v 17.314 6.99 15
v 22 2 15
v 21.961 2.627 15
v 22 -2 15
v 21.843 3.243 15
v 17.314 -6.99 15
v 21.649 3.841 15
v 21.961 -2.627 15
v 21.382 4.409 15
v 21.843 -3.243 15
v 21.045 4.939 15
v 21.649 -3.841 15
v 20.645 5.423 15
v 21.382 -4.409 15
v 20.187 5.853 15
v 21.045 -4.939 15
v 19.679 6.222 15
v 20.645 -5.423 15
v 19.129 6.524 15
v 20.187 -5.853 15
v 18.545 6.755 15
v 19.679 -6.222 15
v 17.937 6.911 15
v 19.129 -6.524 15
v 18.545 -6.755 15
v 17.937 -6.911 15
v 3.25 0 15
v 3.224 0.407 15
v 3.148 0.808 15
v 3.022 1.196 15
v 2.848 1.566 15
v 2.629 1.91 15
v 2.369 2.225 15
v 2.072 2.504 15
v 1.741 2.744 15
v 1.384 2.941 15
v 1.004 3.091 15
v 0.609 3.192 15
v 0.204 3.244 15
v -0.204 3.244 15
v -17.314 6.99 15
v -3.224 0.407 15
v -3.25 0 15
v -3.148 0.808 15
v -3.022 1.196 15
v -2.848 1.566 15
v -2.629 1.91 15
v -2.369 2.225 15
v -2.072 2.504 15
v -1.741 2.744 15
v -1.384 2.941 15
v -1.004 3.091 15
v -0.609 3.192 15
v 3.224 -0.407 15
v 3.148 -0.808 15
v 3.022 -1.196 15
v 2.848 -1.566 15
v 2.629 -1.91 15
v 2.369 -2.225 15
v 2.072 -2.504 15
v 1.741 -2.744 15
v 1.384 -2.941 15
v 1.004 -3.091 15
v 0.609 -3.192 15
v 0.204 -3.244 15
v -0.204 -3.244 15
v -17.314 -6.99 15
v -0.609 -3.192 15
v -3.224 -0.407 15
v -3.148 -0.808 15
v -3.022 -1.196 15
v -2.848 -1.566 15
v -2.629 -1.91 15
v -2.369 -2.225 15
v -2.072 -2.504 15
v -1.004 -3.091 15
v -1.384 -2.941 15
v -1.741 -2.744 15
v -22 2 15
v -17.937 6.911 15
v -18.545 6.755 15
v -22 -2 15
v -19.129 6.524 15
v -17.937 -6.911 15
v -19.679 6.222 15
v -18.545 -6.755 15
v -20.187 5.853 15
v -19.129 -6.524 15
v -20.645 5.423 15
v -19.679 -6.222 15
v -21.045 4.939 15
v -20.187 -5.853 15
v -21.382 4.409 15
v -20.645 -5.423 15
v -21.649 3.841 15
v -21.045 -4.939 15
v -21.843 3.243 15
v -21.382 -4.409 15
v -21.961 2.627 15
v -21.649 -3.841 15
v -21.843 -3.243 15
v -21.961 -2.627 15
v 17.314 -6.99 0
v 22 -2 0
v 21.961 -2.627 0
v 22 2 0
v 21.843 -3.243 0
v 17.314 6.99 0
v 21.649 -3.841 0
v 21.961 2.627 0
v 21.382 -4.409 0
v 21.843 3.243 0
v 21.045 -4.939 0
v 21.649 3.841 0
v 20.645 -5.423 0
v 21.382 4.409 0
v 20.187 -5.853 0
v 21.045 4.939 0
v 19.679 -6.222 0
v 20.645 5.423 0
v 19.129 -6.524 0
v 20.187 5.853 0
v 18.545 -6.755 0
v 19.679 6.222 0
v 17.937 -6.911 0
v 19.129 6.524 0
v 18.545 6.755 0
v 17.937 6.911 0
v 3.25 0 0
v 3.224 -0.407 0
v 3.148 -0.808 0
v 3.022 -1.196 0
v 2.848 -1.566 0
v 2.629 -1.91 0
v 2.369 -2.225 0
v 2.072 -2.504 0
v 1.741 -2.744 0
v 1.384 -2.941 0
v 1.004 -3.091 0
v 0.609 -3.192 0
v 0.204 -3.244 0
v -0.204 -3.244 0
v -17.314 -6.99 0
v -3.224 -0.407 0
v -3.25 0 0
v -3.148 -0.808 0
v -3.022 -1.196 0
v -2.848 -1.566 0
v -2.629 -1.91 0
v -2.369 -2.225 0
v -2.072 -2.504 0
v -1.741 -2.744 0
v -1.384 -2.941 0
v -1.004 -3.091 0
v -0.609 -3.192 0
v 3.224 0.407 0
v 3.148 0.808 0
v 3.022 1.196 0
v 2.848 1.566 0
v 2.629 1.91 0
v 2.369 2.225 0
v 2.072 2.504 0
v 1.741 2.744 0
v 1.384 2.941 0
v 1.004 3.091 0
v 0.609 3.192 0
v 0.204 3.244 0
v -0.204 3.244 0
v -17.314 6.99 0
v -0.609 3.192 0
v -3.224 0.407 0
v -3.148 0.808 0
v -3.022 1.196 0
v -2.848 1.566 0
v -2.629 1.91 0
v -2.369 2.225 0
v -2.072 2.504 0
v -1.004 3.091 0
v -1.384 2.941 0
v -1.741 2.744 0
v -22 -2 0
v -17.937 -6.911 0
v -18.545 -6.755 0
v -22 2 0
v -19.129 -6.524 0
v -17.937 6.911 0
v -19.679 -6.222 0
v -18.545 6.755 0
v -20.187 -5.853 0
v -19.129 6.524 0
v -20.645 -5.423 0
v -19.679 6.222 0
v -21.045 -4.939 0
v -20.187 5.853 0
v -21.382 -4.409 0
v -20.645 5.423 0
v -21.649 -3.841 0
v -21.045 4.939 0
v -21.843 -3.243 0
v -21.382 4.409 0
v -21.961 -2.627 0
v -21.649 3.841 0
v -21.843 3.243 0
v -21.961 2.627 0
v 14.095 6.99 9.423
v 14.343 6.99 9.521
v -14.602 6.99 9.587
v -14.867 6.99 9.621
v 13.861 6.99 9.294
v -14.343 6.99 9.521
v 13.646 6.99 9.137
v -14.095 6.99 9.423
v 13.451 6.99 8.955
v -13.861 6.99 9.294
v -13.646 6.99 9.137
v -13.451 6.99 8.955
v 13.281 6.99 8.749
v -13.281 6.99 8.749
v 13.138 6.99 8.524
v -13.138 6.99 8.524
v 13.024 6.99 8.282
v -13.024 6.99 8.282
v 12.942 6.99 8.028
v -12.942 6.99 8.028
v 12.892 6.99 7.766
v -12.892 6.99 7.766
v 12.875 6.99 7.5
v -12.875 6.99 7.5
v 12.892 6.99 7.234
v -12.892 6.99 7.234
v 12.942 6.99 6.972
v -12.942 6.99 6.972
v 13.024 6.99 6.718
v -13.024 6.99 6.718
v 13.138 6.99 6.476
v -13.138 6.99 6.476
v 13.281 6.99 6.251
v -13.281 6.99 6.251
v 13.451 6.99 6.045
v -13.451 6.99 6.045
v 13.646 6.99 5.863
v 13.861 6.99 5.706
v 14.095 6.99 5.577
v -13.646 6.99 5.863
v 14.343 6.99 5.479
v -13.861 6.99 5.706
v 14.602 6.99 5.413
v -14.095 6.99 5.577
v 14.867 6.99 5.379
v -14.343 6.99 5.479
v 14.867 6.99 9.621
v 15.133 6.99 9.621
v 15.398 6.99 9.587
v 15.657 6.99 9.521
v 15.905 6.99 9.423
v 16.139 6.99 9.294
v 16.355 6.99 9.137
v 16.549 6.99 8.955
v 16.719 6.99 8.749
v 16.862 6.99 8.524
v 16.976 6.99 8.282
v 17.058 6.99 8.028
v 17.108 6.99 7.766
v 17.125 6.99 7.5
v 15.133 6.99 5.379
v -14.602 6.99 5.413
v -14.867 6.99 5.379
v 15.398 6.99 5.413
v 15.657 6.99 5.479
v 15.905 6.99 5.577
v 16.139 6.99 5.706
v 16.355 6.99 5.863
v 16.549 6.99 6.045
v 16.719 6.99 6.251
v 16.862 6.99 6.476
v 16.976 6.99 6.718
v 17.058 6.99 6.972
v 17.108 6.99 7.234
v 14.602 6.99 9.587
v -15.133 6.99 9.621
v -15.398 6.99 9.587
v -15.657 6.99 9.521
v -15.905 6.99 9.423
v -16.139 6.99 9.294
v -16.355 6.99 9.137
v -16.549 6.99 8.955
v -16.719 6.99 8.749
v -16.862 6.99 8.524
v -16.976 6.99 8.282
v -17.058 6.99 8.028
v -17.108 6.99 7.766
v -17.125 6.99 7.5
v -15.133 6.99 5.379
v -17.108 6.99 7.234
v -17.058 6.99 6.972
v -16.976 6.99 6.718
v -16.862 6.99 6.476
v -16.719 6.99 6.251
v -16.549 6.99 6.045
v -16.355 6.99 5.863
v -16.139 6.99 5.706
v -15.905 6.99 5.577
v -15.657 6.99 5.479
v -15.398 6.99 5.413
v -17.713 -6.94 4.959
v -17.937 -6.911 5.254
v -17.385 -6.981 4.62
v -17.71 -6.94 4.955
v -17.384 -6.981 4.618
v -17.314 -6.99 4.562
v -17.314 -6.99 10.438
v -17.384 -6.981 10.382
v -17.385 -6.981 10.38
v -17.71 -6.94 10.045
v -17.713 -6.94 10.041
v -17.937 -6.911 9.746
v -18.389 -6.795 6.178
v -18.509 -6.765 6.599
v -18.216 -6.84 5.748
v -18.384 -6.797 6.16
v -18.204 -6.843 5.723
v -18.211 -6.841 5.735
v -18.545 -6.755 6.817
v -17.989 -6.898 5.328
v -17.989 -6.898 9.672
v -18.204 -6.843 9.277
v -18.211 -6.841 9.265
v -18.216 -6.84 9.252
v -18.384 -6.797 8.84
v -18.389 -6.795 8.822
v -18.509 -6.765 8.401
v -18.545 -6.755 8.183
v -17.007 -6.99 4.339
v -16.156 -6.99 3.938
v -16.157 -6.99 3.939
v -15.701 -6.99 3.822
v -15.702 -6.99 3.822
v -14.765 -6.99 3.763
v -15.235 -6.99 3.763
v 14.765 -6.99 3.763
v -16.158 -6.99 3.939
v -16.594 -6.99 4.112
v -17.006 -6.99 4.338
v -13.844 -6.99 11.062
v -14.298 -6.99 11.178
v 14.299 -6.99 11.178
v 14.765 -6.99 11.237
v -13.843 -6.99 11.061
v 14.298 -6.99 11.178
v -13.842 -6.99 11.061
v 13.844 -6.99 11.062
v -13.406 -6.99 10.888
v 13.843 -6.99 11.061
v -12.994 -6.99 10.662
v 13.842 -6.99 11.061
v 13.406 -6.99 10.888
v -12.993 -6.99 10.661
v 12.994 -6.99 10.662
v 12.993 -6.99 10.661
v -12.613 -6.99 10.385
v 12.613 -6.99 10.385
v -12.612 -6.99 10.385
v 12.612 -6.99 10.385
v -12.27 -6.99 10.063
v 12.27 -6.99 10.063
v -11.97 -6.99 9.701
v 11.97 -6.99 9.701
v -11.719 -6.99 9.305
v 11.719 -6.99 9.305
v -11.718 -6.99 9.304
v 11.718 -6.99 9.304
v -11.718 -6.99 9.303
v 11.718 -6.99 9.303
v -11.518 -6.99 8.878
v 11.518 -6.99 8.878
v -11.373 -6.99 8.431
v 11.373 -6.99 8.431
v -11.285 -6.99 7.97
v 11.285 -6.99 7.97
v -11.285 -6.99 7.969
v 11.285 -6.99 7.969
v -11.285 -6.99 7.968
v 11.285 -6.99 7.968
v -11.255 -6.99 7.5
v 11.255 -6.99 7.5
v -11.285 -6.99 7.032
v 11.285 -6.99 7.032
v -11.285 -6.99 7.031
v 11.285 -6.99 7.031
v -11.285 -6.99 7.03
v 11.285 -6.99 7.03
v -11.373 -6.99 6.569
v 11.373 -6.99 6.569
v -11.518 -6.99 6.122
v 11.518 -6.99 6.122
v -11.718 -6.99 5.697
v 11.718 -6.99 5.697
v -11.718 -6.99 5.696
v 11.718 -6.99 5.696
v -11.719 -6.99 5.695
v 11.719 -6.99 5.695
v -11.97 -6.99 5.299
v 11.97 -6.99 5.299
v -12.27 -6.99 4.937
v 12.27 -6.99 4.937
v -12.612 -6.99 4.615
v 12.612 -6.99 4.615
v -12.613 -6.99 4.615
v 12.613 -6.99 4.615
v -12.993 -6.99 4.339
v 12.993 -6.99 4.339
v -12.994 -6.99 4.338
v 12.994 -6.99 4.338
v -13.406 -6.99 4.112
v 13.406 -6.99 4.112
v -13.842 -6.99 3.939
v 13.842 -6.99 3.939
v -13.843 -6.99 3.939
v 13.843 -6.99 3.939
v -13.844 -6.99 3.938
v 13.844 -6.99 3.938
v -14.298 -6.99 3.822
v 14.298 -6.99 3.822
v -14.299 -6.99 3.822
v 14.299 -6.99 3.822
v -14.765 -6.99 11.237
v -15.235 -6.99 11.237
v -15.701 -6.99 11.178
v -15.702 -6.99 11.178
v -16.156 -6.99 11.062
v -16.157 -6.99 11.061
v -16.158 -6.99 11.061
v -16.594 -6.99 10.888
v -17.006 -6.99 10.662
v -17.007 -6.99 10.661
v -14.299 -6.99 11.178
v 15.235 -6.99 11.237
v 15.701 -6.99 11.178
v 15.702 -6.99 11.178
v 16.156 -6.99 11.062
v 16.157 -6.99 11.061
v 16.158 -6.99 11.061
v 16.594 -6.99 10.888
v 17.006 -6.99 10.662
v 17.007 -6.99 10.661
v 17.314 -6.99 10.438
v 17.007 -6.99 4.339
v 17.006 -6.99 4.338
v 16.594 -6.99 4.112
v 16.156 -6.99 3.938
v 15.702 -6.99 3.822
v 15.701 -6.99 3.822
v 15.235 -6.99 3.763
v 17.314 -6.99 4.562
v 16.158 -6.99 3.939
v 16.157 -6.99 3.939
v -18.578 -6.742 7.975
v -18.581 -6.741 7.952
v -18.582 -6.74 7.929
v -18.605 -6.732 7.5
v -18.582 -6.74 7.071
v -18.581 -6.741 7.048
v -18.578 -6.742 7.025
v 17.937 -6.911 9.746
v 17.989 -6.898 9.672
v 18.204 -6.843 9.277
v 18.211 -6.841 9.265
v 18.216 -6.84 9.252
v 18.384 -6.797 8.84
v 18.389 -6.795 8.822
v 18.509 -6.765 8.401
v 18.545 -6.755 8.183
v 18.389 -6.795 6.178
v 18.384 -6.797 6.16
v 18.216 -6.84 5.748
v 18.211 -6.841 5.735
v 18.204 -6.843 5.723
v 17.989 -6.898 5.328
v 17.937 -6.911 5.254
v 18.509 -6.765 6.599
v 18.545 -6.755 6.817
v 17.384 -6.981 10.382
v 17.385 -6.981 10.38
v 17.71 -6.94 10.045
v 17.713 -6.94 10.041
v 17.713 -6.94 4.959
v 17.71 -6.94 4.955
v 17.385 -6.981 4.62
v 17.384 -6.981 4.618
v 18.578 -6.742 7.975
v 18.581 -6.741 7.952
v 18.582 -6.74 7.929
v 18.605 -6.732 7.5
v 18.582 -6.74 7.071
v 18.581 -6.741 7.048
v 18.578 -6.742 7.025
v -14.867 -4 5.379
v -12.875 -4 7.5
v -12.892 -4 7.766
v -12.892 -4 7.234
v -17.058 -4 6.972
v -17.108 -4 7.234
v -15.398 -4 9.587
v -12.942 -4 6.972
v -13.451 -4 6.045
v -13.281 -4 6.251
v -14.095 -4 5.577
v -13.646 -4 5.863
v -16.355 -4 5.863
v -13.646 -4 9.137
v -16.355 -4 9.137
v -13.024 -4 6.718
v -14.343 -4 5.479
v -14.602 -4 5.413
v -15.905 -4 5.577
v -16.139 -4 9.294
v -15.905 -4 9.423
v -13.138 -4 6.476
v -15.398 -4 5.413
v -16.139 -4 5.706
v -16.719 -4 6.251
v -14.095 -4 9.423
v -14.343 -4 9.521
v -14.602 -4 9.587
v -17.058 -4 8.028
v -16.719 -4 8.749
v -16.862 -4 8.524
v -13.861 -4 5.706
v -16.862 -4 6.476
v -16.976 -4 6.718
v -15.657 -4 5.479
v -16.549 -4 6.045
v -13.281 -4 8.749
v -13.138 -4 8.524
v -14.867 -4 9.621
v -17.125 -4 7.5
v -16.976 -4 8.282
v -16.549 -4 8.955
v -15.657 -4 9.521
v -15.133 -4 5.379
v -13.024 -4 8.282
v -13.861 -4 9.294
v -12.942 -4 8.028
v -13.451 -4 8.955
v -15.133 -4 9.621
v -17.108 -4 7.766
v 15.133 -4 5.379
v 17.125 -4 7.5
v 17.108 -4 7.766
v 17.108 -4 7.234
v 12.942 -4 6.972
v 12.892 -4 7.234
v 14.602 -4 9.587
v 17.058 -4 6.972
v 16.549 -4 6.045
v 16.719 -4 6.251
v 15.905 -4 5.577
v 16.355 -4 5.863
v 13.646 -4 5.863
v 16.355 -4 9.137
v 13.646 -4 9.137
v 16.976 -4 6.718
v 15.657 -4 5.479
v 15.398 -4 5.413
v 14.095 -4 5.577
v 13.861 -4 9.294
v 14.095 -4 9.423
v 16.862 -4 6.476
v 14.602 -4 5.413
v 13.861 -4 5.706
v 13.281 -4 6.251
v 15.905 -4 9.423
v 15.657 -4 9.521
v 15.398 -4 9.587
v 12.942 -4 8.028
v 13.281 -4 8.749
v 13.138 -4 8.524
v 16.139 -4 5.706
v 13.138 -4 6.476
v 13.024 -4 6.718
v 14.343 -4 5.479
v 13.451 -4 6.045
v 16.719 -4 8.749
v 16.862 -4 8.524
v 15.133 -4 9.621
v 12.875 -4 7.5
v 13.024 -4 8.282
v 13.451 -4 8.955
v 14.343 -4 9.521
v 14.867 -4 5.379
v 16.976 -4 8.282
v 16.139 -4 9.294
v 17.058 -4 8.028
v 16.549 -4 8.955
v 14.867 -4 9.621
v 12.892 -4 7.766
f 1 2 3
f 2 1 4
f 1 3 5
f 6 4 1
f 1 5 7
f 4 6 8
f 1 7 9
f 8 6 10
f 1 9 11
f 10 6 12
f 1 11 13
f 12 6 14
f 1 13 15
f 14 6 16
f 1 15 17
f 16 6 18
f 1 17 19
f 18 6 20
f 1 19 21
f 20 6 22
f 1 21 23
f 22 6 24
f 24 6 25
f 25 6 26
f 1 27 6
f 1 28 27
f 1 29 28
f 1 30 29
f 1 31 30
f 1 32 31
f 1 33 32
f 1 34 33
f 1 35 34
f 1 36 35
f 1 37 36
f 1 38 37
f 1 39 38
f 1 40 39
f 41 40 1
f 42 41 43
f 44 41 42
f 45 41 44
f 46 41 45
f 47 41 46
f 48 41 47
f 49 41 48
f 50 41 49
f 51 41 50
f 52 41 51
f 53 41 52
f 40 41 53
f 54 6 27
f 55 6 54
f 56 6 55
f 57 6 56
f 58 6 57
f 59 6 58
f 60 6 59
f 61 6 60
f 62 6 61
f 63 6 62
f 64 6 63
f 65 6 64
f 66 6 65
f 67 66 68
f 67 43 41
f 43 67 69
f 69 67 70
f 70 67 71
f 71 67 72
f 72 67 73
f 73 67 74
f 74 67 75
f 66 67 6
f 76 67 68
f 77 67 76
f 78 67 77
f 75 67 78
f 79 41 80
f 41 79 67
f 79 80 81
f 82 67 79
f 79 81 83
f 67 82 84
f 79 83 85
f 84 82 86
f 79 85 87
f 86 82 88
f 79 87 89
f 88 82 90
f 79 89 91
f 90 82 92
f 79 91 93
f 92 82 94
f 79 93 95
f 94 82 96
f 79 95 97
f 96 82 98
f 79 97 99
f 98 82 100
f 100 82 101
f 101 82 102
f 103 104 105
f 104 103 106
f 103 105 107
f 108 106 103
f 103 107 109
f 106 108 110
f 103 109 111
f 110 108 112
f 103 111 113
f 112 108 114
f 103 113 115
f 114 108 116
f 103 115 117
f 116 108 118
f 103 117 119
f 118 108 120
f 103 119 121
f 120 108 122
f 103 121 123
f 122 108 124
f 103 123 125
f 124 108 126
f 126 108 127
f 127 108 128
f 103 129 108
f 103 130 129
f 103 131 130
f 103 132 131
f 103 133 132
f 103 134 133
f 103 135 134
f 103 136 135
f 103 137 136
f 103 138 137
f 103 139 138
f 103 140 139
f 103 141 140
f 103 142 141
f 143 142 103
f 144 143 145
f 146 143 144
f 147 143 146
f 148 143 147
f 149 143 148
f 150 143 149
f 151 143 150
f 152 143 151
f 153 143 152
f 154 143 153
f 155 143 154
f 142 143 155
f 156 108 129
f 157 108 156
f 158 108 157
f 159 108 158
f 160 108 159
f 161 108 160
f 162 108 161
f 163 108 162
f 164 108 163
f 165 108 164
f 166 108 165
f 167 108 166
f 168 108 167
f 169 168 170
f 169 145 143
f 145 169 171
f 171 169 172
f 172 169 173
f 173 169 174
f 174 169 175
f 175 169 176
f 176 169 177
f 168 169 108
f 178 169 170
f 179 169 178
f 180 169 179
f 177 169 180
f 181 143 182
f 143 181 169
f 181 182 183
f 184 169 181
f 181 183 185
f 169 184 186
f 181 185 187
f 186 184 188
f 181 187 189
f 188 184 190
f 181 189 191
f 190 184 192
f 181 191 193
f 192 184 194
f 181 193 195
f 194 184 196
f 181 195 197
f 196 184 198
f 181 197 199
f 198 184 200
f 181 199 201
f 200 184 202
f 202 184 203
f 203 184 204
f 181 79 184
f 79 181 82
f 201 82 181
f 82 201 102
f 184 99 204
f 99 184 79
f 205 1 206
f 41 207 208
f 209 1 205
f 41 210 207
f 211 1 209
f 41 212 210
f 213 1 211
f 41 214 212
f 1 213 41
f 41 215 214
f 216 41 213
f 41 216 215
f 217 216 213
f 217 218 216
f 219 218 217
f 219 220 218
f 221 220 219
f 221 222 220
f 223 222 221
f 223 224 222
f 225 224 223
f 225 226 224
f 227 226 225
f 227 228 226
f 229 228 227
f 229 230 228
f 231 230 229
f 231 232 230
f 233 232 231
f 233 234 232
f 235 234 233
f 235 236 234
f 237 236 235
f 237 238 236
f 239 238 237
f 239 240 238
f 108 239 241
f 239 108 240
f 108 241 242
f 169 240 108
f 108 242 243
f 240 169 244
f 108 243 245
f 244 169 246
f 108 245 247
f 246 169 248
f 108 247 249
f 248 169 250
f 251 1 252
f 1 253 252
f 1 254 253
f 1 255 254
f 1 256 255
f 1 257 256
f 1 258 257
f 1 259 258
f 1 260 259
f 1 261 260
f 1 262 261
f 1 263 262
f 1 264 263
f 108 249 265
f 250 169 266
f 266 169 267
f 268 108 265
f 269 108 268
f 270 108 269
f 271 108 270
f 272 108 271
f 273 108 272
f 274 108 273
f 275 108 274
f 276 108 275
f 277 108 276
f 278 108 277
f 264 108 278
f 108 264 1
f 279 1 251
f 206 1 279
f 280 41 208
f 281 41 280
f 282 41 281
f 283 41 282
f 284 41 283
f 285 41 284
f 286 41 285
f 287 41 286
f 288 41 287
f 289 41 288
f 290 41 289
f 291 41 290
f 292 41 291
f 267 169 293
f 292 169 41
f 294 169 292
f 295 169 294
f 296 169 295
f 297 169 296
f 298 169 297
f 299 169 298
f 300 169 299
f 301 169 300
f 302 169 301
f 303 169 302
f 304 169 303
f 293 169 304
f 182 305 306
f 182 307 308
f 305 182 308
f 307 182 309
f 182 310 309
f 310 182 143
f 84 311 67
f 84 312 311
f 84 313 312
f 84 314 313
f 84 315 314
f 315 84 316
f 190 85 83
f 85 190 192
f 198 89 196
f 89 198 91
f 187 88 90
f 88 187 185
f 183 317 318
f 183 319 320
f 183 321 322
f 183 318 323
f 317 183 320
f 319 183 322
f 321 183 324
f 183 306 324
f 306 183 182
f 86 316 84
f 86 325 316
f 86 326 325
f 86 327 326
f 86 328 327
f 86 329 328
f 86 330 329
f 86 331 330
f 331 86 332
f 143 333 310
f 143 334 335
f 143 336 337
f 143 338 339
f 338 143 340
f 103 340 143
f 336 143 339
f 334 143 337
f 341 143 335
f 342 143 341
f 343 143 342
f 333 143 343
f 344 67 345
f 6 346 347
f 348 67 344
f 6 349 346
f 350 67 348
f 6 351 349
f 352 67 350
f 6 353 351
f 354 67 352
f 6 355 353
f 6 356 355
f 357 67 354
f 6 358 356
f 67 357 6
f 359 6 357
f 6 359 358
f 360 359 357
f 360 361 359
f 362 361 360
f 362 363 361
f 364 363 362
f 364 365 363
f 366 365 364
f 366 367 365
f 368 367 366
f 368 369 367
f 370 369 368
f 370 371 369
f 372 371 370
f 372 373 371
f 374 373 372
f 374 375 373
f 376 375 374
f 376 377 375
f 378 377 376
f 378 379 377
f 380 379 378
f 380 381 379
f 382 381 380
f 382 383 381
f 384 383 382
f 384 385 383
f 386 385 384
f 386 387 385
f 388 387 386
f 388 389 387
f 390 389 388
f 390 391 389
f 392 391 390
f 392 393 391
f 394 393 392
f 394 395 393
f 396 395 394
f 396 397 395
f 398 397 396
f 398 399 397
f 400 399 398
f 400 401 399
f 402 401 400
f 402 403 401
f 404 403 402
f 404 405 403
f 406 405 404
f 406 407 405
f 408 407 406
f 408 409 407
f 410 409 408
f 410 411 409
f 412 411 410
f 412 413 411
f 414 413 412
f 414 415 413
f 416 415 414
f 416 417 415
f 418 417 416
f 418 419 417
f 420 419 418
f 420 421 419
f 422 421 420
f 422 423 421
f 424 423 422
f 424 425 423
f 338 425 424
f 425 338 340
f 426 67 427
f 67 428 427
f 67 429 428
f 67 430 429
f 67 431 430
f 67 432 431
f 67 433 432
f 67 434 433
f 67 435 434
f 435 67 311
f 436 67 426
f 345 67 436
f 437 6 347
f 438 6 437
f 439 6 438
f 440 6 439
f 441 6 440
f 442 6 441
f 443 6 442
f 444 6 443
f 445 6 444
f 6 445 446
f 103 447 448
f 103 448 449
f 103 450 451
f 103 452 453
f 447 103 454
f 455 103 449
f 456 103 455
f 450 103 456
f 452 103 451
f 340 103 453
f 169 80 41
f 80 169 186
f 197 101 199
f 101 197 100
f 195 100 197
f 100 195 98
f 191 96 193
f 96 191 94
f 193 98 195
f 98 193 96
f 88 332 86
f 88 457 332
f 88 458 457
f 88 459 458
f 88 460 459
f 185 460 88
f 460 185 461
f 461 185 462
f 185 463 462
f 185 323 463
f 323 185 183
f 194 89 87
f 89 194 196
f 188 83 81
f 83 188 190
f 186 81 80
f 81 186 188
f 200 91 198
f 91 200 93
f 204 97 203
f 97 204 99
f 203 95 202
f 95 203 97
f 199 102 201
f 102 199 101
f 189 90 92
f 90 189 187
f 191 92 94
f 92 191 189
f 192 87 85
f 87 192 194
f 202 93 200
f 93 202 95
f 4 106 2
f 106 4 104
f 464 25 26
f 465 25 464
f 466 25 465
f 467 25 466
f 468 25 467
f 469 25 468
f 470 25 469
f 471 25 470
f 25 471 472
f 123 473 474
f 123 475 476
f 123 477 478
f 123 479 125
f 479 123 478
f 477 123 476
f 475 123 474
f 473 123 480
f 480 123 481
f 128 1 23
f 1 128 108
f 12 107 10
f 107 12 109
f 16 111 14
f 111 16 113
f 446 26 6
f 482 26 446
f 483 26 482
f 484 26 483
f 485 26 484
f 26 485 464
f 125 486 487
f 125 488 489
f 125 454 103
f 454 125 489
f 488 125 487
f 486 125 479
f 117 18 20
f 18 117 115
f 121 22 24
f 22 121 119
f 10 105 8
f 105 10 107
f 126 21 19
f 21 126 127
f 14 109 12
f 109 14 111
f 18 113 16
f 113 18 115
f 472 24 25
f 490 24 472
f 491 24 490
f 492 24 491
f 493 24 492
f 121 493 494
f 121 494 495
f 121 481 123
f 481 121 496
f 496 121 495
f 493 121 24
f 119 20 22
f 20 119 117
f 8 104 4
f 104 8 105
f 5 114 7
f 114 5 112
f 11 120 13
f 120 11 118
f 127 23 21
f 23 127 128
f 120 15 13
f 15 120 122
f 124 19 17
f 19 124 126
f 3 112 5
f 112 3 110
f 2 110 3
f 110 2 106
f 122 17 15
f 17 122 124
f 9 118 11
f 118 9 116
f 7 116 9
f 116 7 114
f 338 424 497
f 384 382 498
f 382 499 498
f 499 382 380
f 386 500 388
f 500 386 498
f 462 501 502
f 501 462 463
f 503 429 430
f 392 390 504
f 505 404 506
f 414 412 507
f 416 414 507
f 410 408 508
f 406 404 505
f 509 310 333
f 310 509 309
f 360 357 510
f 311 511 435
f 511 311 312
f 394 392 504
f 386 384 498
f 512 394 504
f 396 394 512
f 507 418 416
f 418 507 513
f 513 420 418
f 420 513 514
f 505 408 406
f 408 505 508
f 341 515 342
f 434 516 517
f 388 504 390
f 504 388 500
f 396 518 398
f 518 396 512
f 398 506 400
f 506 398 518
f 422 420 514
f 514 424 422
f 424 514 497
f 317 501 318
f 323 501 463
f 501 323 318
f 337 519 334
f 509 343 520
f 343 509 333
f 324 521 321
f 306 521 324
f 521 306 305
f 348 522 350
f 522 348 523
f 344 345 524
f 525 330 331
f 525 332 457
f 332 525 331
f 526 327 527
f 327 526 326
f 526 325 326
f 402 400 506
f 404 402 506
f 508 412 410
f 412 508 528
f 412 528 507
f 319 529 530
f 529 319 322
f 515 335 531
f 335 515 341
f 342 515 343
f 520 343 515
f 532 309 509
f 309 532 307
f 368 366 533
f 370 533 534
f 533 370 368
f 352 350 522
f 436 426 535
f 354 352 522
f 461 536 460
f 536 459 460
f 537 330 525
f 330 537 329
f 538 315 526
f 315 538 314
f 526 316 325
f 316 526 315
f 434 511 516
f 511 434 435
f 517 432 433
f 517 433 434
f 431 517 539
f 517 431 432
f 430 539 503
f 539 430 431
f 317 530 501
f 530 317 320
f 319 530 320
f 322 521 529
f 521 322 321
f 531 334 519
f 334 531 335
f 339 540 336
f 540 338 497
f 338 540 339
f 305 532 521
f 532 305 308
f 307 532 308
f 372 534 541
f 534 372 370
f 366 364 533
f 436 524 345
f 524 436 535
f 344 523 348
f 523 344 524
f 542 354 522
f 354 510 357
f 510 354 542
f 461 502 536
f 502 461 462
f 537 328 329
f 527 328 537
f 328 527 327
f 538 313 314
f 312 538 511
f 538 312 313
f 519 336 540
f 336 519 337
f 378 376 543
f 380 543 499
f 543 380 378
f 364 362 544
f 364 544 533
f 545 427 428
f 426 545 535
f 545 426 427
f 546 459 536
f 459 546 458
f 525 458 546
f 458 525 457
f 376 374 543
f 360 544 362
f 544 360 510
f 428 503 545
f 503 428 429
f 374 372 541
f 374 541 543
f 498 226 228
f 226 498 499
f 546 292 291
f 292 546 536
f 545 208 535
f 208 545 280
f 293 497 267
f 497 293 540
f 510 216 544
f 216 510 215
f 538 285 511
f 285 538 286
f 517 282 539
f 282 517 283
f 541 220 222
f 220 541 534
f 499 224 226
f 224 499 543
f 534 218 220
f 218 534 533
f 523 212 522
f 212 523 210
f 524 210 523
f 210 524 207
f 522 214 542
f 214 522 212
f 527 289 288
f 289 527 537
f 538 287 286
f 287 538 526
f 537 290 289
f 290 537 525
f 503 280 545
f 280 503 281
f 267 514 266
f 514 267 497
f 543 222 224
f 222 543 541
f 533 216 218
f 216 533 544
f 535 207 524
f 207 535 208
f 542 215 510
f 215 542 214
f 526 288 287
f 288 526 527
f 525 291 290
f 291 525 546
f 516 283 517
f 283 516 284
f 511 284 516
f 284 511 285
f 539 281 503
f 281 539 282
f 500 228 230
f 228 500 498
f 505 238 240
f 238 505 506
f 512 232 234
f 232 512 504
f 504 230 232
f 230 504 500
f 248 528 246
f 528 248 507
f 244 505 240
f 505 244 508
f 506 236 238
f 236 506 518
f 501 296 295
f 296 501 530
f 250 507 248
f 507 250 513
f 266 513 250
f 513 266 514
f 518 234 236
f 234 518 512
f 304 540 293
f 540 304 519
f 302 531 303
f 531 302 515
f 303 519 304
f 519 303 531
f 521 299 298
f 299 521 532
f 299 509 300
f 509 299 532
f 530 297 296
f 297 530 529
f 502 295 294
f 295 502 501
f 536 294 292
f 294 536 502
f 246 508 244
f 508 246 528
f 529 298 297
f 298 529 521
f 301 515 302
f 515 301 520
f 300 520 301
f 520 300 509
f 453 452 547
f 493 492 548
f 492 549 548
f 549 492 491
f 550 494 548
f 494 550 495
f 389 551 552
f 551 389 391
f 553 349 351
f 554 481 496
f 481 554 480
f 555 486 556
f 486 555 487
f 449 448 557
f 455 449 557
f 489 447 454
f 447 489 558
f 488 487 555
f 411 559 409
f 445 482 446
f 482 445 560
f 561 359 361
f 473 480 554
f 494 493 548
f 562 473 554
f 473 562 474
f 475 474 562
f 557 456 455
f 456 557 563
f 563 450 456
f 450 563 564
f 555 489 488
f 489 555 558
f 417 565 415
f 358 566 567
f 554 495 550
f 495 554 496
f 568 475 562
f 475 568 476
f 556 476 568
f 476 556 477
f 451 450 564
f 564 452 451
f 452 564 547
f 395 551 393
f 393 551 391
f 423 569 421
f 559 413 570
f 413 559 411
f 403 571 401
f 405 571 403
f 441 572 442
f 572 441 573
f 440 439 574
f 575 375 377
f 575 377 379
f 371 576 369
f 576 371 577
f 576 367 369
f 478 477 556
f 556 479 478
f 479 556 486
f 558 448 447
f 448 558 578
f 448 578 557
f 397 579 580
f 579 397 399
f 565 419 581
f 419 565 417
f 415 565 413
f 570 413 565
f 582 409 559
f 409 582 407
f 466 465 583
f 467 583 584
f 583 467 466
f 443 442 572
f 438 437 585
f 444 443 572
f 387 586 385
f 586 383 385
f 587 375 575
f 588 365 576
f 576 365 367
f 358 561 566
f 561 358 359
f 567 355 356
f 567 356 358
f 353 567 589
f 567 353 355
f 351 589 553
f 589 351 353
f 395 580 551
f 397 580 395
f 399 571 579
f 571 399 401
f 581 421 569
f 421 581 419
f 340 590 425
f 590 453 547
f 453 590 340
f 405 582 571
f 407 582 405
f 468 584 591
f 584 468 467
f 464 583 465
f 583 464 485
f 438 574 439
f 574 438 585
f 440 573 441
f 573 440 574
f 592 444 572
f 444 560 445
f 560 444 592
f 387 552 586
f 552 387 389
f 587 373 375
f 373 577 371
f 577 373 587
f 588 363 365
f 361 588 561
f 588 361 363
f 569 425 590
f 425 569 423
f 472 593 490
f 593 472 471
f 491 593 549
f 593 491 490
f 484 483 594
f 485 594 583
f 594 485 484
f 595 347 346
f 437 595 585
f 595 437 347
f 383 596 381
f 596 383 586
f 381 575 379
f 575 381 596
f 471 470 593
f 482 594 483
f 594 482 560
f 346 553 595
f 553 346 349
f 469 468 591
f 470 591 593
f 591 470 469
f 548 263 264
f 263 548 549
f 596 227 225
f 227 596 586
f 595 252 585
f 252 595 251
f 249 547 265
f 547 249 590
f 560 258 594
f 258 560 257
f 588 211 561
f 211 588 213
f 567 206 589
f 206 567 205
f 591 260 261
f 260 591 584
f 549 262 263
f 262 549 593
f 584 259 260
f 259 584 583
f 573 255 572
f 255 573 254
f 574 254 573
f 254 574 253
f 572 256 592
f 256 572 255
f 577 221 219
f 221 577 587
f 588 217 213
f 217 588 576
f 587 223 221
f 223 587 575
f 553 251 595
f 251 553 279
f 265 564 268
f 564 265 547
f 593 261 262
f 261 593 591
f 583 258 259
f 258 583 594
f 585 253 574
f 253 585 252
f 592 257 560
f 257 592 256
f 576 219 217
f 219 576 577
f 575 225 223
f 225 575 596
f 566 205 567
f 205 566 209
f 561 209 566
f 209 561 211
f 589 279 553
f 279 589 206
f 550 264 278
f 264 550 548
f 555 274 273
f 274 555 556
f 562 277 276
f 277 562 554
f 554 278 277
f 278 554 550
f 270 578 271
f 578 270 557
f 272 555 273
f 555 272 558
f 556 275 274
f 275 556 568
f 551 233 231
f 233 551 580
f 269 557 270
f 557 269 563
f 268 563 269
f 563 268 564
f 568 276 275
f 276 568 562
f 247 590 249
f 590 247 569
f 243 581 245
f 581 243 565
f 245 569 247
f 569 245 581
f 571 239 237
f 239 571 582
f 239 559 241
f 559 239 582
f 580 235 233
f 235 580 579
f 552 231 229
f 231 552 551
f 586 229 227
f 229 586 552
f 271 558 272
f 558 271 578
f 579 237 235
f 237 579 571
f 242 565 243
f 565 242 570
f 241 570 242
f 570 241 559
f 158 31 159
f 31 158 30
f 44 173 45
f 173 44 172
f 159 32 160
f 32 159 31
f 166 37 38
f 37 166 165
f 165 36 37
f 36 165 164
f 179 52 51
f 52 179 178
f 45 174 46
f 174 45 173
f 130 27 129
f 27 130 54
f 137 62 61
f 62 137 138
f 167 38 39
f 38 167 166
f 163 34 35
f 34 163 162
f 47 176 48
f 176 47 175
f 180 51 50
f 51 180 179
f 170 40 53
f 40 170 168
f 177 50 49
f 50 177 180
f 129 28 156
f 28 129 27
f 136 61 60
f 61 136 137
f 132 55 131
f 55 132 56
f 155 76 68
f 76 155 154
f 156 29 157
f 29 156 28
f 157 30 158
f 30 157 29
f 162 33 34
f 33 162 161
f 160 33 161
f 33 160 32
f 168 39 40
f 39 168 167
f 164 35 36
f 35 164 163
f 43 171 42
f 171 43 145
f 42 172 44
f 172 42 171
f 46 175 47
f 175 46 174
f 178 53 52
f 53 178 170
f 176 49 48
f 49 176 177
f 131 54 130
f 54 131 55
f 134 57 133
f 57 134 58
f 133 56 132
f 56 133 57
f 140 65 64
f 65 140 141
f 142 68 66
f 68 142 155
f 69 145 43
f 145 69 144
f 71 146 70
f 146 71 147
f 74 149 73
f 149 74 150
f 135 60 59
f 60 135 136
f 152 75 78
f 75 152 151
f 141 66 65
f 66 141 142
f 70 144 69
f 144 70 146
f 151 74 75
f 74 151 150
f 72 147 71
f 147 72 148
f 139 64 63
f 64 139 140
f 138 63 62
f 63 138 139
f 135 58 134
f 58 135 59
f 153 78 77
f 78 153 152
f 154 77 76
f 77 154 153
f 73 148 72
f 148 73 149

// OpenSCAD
$fn = 50;


difference() {
	union() {
		cylinder(h = 15, r = 7.0000000000);
		translate(v = [-7.5000000000, 0.0000000000, 0]) {
			hull() {
				translate(v = [-9.5000000000, 2.0000000000, 0]) {
					cylinder(h = 15, r = 5);
				}
				translate(v = [9.5000000000, 2.0000000000, 0]) {
					cylinder(h = 15, r = 5);
				}
				translate(v = [-9.5000000000, -2.0000000000, 0]) {
					cylinder(h = 15, r = 5);
				}
				translate(v = [9.5000000000, -2.0000000000, 0]) {
					cylinder(h = 15, r = 5);
				}
			}
		}
		translate(v = [-7.5000000000, 0.0000000000, 0]) {
			hull() {
				translate(v = [-9.5000000000, 2.0000000000, 0]) {
					cylinder(h = 15, r = 5);
				}
				translate(v = [9.5000000000, 2.0000000000, 0]) {
					cylinder(h = 15, r = 5);
				}
				translate(v = [-9.5000000000, -2.0000000000, 0]) {
					cylinder(h = 15, r = 5);
				}
				translate(v = [9.5000000000, -2.0000000000, 0]) {
					cylinder(h = 15, r = 5);
				}
			}
		}
		translate(v = [7.5000000000, 0.0000000000, 0]) {
			hull() {
				translate(v = [-9.5000000000, 2.0000000000, 0]) {
					cylinder(h = 15, r = 5);
				}
				translate(v = [9.5000000000, 2.0000000000, 0]) {
					cylinder(h = 15, r = 5);
				}
				translate(v = [-9.5000000000, -2.0000000000, 0]) {
					cylinder(h = 15, r = 5);
				}
				translate(v = [9.5000000000, -2.0000000000, 0]) {
					cylinder(h = 15, r = 5);
				}
			}
		}
		translate(v = [7.5000000000, 0.0000000000, 0]) {
			hull() {
				translate(v = [-9.5000000000, 2.0000000000, 0]) {
					cylinder(h = 15, r = 5);
				}
				translate(v = [9.5000000000, 2.0000000000, 0]) {
					cylinder(h = 15, r = 5);
				}
				translate(v = [-9.5000000000, -2.0000000000, 0]) {
					cylinder(h = 15, r = 5);
				}
				translate(v = [9.5000000000, -2.0000000000, 0]) {
					cylinder(h = 15, r = 5);
				}
			}
		}
	}
	union() {
		translate(v = [-15.0000000000, -7.0000000000, 7.5000000000]) {
			rotate(a = [90, 0, 0]) {
				difference() {
					union() {
						#translate(v = [0, 0, -14.0000000000]) {
							cylinder(h = 14, r = 2.0000000000);
						}
						#translate(v = [0, 0, -3]) {
							cylinder(h = 3, r1 = 2.1250000000, r2 = 3.7500000000);
						}
						#translate(v = [0, 0, -14.0000000000]) {
							cylinder(h = 14, r = 2.1250000000);
						}
						#translate(v = [0, 0, -14.0000000000]) {
							cylinder(h = 14, r = 2.0000000000);
						}
					}
					union();
				}
			}
		}
		translate(v = [15.0000000000, -7.0000000000, 7.5000000000]) {
			rotate(a = [90, 0, 0]) {
				difference() {
					union() {
						#translate(v = [0, 0, -14.0000000000]) {
							cylinder(h = 14, r = 2.0000000000);
						}
						#translate(v = [0, 0, -3]) {
							cylinder(h = 3, r1 = 2.1250000000, r2 = 3.7500000000);
						}
						#translate(v = [0, 0, -14.0000000000]) {
							cylinder(h = 14, r = 2.1250000000);
						}
						#translate(v = [0, 0, -14.0000000000]) {
							cylinder(h = 14, r = 2.0000000000);
						}
					}
					union();
				}
			}
		}
		translate(v = [0, 0, -100]) {
			cylinder(h = 200, r = 3.2500000000);
		}
		translate(v = [0, 0, -100]) {
			cylinder(h = 200, r = 1.8000000000);
		}
	}
}
